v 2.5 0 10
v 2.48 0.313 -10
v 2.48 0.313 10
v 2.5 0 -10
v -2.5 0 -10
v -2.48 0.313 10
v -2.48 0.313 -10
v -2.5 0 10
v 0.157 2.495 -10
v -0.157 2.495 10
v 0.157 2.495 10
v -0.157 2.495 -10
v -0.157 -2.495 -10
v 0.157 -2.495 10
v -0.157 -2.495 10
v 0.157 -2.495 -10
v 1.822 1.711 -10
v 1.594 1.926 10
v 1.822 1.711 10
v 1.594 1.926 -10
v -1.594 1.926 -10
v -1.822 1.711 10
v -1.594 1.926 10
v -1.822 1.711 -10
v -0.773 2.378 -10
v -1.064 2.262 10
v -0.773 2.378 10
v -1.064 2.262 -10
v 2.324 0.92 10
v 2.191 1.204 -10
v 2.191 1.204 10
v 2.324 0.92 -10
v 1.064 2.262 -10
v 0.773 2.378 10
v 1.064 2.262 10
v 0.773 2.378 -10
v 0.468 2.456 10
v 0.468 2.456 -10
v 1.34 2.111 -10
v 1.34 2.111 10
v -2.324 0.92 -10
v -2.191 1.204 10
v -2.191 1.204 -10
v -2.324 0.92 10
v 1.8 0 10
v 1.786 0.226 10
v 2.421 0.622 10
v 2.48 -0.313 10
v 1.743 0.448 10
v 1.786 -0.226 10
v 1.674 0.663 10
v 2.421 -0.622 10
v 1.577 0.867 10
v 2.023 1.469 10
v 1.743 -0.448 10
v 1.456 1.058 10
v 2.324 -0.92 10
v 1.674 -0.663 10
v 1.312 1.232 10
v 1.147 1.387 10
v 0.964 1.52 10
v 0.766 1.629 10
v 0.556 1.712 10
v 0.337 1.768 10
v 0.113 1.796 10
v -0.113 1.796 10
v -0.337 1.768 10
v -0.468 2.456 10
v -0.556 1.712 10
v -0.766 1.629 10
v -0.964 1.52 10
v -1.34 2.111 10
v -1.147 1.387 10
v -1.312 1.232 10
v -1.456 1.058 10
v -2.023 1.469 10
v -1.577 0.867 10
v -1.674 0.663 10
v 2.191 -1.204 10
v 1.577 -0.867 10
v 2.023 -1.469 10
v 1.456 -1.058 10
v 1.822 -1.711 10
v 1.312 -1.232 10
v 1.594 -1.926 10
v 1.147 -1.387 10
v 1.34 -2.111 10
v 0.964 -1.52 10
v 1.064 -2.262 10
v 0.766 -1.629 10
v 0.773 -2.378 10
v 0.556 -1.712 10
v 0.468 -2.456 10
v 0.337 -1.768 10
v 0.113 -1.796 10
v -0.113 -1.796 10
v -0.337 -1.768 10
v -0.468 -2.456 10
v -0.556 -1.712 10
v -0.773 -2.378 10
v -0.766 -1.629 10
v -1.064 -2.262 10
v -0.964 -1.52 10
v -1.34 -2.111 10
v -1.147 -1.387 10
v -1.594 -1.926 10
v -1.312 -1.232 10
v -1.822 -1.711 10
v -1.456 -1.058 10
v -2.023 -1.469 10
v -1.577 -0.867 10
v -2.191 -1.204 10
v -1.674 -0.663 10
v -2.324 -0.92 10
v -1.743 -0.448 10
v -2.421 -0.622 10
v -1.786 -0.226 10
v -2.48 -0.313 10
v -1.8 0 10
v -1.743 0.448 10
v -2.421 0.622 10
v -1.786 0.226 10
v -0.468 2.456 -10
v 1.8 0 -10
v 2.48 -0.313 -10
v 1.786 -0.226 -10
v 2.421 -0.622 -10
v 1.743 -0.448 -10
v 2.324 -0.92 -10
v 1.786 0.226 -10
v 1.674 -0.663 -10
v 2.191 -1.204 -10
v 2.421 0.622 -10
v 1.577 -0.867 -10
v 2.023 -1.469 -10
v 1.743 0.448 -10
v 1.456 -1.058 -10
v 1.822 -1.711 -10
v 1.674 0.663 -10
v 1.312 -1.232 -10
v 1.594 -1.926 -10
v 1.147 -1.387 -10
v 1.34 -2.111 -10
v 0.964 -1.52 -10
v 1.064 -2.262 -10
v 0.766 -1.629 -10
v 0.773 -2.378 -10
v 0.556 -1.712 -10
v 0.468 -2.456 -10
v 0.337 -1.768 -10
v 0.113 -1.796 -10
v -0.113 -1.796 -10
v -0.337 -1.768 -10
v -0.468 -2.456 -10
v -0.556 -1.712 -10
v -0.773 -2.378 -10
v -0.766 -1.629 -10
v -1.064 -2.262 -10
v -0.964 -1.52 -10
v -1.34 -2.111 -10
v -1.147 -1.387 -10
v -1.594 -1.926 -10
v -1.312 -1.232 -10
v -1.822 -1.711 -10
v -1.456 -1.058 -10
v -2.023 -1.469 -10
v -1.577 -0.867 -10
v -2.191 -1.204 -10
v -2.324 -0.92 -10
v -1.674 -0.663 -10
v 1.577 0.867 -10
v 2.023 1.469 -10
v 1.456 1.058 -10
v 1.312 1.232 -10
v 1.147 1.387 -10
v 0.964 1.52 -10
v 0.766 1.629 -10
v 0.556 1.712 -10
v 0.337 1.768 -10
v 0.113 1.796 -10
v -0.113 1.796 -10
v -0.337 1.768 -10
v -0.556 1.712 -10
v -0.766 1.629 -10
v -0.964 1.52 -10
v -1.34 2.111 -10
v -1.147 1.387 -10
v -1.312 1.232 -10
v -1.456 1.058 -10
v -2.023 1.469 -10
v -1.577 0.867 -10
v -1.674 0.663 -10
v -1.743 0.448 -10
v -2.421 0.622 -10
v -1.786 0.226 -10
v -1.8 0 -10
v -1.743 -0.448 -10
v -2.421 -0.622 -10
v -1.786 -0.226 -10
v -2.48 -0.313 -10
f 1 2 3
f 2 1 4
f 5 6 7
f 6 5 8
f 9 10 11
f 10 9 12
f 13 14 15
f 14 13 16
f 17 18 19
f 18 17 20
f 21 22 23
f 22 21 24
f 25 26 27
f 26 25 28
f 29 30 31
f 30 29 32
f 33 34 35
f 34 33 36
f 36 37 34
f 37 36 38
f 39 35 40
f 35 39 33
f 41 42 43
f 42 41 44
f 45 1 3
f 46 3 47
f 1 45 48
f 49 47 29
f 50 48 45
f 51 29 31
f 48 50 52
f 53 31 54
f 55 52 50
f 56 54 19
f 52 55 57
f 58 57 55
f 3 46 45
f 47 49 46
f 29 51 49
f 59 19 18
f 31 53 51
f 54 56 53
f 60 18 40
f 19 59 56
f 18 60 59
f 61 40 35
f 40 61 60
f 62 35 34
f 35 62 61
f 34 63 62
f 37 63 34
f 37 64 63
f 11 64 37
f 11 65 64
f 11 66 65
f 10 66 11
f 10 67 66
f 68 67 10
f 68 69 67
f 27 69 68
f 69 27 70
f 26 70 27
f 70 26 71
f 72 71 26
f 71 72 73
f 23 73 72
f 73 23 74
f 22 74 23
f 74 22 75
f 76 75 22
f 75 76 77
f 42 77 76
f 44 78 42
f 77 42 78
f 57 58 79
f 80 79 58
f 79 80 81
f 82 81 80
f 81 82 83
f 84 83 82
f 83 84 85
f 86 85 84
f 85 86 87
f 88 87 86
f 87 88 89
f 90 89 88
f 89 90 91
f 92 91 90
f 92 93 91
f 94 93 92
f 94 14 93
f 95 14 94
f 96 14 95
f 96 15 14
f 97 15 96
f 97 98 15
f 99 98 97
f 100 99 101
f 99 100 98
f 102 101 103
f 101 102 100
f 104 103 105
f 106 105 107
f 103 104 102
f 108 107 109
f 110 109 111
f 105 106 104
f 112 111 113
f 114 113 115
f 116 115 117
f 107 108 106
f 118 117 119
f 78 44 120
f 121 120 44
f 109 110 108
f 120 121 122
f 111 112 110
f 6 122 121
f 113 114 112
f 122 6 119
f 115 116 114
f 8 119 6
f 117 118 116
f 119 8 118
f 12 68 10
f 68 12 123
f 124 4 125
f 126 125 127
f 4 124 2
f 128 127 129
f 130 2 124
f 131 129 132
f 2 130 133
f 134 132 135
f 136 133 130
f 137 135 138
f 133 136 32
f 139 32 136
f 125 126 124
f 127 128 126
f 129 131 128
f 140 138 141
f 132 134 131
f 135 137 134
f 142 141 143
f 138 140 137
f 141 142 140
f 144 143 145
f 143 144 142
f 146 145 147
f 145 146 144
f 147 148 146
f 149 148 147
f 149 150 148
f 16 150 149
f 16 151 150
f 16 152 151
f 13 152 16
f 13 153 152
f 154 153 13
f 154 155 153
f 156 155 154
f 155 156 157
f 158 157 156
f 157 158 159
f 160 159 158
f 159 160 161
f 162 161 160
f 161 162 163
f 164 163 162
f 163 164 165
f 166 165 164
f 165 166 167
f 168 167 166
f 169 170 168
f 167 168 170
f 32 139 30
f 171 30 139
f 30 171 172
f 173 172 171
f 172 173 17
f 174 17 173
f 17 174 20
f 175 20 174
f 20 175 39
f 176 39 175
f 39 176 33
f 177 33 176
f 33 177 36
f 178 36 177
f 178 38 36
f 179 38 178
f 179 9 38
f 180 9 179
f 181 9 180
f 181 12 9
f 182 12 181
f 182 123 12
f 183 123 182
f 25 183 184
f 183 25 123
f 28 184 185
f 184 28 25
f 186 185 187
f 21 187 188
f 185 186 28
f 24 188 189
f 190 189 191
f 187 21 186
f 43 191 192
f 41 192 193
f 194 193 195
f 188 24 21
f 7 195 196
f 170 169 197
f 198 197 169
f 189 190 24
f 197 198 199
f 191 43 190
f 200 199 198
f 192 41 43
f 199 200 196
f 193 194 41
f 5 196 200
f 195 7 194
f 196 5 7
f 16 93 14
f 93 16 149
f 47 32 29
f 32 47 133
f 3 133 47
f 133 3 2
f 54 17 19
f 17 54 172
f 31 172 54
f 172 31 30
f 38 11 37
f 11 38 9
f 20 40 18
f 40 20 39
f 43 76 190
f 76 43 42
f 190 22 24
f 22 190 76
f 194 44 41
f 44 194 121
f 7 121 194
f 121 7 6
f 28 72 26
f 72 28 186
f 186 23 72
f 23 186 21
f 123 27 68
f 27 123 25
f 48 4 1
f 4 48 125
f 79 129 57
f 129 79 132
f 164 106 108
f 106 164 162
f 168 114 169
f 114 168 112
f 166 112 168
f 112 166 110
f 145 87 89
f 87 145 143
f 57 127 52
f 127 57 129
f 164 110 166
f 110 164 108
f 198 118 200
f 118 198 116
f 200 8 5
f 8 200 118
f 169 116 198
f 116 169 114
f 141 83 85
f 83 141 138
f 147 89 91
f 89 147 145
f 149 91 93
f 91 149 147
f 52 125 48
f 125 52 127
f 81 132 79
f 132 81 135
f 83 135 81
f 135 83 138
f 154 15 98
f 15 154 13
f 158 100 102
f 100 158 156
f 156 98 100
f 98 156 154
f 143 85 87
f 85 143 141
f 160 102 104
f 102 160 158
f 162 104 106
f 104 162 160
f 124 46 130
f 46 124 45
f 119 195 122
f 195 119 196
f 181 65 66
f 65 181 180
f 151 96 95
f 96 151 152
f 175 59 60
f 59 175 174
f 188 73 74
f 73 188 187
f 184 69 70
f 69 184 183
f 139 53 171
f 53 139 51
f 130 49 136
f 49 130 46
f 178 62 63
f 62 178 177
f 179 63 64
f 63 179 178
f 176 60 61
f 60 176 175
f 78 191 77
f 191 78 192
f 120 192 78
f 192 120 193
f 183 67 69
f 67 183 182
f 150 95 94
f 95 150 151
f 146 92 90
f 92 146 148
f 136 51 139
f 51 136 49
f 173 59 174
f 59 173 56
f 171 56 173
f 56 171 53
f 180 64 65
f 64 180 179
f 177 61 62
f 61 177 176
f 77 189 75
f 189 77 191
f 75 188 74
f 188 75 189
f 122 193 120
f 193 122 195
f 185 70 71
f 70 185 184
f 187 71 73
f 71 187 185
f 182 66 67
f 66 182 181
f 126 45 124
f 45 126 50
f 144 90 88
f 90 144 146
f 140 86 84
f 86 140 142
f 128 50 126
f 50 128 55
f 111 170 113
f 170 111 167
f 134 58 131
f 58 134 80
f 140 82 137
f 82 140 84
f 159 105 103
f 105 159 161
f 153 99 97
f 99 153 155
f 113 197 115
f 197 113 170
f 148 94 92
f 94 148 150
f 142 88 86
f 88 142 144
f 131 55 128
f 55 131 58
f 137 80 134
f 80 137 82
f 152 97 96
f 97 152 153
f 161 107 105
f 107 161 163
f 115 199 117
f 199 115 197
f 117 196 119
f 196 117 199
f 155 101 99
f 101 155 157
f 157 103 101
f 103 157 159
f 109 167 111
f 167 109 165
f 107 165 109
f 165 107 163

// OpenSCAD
$fn = 50;


difference() {
	union() {
		translate(v = [0, 0, -10.0000000000]) {
			cylinder(h = 20, r = 2.5000000000);
		}
	}
	union() {
		translate(v = [0, 0, -100.0000000000]) {
			cylinder(h = 200, r = 1.8000000000);
		}
	}
}
